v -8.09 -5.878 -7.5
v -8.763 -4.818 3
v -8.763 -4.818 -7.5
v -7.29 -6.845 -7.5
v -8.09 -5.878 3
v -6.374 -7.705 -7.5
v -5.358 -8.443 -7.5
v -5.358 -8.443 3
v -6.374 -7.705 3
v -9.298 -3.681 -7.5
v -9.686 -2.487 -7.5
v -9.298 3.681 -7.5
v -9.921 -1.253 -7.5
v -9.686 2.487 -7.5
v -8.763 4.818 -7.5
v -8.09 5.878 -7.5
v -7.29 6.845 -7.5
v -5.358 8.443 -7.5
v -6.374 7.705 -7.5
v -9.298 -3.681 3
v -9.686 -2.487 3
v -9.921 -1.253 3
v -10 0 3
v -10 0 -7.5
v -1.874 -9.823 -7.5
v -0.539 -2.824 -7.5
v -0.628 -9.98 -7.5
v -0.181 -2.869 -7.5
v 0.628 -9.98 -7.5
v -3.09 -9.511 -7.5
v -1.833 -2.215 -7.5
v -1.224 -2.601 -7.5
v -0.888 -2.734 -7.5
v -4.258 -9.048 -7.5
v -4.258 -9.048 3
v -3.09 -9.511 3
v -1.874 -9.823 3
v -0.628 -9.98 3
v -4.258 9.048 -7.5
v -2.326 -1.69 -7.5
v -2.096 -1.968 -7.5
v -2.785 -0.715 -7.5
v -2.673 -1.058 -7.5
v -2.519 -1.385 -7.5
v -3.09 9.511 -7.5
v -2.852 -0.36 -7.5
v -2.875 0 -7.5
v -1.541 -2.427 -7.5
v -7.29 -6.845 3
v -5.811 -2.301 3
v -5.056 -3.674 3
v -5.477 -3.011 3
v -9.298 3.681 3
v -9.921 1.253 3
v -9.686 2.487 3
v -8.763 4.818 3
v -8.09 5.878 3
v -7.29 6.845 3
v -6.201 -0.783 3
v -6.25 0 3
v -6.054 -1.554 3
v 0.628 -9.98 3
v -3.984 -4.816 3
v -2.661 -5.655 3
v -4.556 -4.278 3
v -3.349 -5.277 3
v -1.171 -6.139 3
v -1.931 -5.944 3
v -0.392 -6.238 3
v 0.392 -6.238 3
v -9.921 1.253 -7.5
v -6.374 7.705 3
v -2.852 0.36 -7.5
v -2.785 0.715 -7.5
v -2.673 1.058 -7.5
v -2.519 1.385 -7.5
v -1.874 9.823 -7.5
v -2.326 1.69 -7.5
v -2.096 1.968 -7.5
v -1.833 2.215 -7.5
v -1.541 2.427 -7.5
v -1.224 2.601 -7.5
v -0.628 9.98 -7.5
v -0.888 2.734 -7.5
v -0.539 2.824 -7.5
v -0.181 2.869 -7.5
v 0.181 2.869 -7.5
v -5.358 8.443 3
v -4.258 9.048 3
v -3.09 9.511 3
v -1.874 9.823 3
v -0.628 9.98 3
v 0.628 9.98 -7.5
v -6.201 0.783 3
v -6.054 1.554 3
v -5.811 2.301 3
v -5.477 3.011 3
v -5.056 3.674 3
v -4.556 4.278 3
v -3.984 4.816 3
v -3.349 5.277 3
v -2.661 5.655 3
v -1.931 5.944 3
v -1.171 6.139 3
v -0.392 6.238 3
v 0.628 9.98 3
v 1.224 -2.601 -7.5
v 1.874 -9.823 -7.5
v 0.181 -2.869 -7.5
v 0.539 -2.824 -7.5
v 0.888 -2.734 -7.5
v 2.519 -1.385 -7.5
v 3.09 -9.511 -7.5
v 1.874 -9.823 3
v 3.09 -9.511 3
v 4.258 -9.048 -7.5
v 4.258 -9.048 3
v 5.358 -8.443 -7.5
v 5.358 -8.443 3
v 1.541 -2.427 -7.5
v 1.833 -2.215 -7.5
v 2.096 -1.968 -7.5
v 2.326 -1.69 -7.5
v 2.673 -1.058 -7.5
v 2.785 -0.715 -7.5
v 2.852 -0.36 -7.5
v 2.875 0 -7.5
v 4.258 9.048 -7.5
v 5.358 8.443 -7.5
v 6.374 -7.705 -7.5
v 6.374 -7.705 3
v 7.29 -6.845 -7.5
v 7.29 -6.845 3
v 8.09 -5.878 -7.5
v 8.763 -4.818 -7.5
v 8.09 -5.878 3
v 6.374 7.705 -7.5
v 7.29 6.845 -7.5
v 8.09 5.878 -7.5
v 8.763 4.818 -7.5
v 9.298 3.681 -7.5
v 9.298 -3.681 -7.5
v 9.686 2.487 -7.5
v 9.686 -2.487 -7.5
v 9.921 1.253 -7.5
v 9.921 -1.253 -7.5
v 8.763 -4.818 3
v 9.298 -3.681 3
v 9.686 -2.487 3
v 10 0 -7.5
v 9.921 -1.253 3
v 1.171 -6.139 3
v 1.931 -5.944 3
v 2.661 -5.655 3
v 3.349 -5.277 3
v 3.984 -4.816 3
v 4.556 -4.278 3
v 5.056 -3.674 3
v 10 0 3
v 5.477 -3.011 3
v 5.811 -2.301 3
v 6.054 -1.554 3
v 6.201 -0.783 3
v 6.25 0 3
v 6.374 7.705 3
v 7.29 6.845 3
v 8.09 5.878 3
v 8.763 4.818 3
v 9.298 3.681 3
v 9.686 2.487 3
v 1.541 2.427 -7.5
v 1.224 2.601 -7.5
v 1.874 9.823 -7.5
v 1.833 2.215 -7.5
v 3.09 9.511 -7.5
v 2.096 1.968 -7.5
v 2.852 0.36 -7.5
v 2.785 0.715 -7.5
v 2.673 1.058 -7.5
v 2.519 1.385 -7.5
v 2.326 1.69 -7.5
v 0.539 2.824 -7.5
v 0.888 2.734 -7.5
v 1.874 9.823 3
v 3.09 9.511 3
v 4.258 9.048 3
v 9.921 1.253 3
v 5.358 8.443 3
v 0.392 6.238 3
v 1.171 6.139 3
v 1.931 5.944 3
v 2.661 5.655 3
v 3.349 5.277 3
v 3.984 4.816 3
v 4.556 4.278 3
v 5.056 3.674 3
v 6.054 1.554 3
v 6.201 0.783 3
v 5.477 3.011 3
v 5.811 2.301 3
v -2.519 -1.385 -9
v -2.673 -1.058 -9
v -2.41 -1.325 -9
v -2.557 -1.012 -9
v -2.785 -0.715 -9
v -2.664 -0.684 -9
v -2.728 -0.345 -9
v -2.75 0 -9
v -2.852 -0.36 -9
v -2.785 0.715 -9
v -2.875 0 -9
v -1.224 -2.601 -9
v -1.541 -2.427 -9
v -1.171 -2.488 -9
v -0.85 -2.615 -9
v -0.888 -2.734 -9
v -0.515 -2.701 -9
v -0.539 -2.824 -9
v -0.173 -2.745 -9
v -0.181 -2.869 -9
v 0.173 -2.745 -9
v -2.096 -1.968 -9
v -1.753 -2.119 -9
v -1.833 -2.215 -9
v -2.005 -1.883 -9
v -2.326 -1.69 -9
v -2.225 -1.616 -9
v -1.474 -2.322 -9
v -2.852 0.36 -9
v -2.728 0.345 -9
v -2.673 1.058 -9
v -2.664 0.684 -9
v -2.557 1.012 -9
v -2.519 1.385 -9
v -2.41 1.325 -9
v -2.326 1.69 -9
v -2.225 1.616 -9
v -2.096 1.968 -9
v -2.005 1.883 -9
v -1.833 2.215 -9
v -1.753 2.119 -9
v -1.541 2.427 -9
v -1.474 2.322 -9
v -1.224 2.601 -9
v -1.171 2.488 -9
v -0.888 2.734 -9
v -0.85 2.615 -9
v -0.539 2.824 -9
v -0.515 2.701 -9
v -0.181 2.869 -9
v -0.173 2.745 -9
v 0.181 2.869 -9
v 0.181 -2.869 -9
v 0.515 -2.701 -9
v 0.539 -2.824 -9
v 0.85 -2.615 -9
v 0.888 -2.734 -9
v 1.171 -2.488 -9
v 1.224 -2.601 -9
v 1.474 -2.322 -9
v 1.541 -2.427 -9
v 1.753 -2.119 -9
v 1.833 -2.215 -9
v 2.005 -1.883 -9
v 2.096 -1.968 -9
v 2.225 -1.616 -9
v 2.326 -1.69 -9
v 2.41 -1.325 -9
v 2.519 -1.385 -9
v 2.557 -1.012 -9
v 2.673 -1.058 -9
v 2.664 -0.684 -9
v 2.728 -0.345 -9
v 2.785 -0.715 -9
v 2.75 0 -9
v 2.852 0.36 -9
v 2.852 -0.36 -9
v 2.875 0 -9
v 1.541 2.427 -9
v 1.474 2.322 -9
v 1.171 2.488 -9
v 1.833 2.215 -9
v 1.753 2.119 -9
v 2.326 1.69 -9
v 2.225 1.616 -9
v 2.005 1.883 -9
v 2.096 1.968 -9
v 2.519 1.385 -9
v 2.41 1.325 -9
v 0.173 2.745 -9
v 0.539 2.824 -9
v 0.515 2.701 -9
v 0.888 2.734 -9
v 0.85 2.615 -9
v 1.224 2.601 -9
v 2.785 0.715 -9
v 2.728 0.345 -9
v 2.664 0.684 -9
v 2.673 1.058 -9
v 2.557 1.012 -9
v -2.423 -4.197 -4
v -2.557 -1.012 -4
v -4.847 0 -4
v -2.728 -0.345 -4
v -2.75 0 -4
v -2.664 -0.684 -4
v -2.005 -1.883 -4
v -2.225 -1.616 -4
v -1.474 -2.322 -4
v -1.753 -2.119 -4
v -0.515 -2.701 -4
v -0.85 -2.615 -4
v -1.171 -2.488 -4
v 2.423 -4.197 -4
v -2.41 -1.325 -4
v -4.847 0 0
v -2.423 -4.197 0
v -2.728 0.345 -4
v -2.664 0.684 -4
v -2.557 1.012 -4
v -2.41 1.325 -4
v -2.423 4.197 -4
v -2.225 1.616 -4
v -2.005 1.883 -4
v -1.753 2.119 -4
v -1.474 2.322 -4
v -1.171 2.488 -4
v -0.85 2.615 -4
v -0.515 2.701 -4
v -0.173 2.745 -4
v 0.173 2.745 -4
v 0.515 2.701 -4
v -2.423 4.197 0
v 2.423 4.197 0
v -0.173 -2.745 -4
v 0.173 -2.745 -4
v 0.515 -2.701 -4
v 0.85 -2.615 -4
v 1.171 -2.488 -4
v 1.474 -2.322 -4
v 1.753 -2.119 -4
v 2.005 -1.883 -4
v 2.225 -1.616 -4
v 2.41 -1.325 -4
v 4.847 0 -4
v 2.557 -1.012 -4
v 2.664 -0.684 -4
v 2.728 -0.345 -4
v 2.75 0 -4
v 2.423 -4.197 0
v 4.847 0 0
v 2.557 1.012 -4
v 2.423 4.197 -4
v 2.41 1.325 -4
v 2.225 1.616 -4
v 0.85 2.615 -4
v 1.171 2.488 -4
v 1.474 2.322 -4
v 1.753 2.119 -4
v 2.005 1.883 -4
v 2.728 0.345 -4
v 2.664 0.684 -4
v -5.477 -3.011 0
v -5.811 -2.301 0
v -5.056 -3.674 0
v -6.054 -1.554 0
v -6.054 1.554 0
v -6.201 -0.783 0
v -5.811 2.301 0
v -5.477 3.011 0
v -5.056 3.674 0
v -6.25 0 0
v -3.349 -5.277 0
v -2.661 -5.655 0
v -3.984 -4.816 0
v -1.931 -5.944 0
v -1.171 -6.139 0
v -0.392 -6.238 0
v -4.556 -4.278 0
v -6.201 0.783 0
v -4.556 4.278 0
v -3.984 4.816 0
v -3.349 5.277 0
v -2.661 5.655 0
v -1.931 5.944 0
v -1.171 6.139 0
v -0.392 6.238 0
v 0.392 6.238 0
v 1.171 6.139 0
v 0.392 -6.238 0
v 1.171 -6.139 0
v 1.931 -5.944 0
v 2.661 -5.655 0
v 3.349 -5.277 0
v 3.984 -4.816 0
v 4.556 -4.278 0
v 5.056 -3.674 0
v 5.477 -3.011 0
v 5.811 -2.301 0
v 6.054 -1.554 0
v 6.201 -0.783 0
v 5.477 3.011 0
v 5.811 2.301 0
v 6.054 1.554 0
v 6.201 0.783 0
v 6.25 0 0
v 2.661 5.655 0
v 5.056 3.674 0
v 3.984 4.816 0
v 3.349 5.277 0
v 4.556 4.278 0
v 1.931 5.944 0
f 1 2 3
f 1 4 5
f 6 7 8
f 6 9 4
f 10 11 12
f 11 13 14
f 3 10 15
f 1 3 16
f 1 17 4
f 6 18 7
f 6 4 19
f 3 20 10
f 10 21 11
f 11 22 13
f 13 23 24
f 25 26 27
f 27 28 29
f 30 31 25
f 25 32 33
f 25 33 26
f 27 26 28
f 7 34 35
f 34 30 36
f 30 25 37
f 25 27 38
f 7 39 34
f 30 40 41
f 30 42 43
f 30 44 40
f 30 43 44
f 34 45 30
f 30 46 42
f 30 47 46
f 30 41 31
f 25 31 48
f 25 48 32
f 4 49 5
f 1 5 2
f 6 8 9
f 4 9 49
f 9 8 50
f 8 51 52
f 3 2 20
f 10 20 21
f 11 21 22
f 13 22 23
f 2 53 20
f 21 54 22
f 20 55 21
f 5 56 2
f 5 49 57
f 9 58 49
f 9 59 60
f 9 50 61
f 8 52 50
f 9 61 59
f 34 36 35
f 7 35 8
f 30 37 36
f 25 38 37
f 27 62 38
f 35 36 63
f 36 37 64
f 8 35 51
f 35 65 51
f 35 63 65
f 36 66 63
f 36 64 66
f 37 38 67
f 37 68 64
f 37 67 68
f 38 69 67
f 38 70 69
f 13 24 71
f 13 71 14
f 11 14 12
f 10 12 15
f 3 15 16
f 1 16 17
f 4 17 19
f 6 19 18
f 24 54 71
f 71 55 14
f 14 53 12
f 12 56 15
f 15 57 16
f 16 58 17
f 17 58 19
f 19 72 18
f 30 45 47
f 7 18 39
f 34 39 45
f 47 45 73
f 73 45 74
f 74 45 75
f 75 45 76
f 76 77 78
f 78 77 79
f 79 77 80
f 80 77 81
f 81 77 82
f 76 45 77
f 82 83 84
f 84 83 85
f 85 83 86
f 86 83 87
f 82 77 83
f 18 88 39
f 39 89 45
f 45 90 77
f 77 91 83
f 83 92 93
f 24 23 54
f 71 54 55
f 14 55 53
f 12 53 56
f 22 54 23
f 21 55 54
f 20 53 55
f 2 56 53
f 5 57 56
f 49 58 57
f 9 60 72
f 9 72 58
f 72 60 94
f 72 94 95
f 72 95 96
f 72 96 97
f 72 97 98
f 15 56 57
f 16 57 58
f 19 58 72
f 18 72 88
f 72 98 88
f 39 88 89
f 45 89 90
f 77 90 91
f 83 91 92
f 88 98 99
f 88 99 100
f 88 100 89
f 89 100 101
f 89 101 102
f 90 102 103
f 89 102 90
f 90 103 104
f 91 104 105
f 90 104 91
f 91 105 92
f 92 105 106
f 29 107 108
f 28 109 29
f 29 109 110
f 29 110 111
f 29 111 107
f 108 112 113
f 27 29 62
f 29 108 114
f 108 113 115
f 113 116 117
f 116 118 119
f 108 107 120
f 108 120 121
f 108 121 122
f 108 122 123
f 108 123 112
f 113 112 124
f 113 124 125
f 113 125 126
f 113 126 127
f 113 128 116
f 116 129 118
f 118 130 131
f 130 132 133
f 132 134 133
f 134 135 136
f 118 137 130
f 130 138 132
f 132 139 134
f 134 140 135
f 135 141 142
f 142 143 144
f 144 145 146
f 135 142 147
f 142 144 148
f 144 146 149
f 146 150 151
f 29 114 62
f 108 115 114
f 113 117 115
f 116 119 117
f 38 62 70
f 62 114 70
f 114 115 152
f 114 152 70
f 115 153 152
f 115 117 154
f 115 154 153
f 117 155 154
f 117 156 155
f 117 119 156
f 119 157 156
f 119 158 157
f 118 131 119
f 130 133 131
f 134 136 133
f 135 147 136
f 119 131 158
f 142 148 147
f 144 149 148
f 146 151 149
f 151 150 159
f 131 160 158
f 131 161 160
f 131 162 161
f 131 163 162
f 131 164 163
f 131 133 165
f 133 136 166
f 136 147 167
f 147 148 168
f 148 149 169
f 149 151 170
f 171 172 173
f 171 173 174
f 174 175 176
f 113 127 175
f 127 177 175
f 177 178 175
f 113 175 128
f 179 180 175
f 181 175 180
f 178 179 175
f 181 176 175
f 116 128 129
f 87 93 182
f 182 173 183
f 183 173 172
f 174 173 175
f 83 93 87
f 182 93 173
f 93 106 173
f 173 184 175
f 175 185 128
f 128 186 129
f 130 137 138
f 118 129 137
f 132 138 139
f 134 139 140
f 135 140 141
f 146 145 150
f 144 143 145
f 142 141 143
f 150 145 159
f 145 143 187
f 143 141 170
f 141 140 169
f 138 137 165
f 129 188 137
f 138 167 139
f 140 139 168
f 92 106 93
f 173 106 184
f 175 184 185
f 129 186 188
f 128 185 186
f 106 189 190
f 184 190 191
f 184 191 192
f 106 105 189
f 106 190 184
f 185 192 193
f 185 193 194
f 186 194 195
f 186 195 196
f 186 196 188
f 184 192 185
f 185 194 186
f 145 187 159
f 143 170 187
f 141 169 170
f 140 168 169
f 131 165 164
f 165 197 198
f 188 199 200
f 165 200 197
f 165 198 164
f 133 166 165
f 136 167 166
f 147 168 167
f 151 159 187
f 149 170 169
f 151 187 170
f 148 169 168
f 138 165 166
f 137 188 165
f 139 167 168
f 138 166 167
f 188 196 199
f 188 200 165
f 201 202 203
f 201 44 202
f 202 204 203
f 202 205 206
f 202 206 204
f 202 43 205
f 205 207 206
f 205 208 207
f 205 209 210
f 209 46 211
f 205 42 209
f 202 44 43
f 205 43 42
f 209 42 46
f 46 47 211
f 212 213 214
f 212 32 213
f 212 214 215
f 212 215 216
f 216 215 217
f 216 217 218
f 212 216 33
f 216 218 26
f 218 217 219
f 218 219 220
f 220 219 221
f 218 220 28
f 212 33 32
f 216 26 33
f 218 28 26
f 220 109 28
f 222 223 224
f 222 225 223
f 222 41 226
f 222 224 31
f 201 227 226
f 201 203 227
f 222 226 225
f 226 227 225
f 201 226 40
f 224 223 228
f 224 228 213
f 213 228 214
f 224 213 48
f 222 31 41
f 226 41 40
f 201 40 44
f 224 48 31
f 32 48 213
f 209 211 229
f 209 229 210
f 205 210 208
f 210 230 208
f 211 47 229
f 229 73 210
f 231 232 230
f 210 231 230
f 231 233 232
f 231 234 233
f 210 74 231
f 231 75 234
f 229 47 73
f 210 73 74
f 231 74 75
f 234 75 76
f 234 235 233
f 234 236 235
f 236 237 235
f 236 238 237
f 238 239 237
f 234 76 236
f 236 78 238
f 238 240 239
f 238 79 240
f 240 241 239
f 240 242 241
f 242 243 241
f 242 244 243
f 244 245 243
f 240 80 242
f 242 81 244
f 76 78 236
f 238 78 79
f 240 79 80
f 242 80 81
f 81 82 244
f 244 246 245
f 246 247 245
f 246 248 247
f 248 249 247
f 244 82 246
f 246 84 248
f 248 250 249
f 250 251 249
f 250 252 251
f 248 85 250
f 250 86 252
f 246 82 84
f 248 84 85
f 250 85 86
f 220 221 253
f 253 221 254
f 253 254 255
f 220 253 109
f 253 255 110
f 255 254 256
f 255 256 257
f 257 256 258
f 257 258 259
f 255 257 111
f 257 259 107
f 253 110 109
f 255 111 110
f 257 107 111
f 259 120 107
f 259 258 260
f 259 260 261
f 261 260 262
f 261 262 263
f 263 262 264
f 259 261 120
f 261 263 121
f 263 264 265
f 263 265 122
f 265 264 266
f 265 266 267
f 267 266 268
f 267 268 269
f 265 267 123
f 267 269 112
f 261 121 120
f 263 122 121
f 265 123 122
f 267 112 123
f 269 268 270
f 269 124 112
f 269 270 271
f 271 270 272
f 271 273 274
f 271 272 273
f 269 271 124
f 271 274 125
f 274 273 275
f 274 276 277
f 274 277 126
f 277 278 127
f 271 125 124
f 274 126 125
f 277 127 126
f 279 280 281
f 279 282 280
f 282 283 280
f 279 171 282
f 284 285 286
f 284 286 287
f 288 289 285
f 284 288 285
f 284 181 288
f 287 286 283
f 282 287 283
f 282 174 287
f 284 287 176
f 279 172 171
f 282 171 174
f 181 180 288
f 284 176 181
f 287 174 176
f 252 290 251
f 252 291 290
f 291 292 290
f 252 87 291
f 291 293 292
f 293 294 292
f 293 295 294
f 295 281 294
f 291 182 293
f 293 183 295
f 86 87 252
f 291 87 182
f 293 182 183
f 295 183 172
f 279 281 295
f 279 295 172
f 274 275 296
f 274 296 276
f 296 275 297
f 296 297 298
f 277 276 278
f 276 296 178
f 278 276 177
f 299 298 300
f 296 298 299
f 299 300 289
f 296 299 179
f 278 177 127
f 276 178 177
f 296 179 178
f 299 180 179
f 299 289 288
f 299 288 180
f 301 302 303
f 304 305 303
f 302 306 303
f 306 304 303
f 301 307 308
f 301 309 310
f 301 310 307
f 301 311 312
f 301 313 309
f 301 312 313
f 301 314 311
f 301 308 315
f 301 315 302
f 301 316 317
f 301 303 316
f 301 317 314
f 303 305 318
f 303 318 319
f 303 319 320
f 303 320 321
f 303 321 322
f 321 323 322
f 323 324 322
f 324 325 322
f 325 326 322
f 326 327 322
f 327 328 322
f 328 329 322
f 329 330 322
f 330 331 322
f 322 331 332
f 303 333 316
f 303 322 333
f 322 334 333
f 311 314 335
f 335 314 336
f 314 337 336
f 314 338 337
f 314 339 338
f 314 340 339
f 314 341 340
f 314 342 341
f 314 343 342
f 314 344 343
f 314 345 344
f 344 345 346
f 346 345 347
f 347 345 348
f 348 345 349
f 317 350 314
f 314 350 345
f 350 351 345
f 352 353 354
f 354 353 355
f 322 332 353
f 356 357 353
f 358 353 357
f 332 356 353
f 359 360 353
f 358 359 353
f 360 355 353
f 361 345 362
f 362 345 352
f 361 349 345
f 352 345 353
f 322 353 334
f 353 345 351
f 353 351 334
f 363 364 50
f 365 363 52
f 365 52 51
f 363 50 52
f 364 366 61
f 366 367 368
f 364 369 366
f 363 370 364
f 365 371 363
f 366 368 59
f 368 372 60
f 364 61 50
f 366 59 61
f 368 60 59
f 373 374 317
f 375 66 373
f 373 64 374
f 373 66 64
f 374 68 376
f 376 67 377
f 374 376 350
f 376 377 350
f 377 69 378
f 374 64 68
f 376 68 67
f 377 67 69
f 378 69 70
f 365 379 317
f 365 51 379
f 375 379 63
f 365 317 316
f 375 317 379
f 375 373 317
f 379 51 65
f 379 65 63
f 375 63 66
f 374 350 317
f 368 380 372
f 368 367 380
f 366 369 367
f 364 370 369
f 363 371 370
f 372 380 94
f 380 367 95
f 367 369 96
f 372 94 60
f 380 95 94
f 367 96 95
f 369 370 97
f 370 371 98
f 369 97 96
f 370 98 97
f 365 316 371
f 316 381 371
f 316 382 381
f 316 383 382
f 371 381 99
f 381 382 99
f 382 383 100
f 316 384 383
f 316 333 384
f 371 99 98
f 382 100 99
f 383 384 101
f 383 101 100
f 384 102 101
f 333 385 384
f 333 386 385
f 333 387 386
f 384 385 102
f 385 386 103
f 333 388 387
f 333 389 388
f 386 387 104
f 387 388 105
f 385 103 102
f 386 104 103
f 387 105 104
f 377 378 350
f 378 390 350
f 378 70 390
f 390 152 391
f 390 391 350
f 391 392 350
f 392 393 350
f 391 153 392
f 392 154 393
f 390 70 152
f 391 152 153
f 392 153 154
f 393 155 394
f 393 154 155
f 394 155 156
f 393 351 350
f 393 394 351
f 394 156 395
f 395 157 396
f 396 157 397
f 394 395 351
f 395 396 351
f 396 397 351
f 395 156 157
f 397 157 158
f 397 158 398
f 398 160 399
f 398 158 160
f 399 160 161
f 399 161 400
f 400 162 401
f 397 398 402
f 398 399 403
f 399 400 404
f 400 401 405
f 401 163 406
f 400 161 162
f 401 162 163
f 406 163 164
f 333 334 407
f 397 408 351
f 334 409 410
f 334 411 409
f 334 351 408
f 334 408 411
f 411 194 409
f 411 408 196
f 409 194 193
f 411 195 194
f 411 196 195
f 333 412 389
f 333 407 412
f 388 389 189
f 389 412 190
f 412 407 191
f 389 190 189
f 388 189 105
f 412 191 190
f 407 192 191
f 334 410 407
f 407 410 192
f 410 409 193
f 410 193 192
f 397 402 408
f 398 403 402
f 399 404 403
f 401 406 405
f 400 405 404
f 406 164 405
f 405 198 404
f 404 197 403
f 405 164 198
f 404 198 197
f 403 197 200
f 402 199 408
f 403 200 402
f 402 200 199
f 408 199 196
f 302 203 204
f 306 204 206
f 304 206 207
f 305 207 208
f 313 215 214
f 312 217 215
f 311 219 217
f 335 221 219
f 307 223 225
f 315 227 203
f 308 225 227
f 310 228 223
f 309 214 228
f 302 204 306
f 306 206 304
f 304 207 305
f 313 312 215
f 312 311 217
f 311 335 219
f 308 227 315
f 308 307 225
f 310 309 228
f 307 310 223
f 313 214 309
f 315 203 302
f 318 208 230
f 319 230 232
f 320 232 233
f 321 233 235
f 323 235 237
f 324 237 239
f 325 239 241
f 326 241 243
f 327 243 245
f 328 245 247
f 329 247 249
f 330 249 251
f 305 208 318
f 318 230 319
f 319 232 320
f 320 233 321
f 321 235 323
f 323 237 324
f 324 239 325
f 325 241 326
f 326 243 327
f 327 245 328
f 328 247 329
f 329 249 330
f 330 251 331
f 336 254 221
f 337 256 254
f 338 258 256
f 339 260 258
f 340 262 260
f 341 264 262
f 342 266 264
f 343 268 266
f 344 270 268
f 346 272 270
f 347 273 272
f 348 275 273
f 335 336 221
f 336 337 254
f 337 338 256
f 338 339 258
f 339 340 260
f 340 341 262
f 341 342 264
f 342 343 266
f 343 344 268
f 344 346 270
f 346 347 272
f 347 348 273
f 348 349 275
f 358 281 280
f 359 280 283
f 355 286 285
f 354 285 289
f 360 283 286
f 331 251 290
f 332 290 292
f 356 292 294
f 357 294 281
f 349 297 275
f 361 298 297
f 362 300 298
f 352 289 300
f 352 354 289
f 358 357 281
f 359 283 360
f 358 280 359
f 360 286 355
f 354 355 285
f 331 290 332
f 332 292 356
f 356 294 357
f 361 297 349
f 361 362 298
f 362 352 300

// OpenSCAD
$fn = 50;


difference() {
	union() {
		translate(v = [0, 0, -7.5000000000]) {
			cylinder(h = 10.5000000000, r = 10.0000000000);
		}
		#translate(v = [0, 0, -9.0000000000]) {
			cylinder(h = 9, r = 2.8750000000);
		}
	}
	union() {
		translate(v = [0, 0, 0]) {
			rotate(a = [0, 0, 0]) {
				difference() {
					union() {
						translate(v = [0, 0, -4]) {
							linear_extrude(height = 4) {
								polygon(points = [[4.8468000000, 0.0000000000], [2.4234000000, 4.1974519271], [-2.4234000000, 4.1974519271], [-4.8468000000, 0.0000000000], [-2.4234000000, -4.1974519271], [2.4234000000, -4.1974519271]]);
							}
						}
					}
					union();
				}
			}
		}
		#cylinder(h = 3, r = 6.2500000000);
		#translate(v = [0, 0, -100.0000000000]) {
			cylinder(h = 200, r = 2.7500000000);
		}
	}
}
